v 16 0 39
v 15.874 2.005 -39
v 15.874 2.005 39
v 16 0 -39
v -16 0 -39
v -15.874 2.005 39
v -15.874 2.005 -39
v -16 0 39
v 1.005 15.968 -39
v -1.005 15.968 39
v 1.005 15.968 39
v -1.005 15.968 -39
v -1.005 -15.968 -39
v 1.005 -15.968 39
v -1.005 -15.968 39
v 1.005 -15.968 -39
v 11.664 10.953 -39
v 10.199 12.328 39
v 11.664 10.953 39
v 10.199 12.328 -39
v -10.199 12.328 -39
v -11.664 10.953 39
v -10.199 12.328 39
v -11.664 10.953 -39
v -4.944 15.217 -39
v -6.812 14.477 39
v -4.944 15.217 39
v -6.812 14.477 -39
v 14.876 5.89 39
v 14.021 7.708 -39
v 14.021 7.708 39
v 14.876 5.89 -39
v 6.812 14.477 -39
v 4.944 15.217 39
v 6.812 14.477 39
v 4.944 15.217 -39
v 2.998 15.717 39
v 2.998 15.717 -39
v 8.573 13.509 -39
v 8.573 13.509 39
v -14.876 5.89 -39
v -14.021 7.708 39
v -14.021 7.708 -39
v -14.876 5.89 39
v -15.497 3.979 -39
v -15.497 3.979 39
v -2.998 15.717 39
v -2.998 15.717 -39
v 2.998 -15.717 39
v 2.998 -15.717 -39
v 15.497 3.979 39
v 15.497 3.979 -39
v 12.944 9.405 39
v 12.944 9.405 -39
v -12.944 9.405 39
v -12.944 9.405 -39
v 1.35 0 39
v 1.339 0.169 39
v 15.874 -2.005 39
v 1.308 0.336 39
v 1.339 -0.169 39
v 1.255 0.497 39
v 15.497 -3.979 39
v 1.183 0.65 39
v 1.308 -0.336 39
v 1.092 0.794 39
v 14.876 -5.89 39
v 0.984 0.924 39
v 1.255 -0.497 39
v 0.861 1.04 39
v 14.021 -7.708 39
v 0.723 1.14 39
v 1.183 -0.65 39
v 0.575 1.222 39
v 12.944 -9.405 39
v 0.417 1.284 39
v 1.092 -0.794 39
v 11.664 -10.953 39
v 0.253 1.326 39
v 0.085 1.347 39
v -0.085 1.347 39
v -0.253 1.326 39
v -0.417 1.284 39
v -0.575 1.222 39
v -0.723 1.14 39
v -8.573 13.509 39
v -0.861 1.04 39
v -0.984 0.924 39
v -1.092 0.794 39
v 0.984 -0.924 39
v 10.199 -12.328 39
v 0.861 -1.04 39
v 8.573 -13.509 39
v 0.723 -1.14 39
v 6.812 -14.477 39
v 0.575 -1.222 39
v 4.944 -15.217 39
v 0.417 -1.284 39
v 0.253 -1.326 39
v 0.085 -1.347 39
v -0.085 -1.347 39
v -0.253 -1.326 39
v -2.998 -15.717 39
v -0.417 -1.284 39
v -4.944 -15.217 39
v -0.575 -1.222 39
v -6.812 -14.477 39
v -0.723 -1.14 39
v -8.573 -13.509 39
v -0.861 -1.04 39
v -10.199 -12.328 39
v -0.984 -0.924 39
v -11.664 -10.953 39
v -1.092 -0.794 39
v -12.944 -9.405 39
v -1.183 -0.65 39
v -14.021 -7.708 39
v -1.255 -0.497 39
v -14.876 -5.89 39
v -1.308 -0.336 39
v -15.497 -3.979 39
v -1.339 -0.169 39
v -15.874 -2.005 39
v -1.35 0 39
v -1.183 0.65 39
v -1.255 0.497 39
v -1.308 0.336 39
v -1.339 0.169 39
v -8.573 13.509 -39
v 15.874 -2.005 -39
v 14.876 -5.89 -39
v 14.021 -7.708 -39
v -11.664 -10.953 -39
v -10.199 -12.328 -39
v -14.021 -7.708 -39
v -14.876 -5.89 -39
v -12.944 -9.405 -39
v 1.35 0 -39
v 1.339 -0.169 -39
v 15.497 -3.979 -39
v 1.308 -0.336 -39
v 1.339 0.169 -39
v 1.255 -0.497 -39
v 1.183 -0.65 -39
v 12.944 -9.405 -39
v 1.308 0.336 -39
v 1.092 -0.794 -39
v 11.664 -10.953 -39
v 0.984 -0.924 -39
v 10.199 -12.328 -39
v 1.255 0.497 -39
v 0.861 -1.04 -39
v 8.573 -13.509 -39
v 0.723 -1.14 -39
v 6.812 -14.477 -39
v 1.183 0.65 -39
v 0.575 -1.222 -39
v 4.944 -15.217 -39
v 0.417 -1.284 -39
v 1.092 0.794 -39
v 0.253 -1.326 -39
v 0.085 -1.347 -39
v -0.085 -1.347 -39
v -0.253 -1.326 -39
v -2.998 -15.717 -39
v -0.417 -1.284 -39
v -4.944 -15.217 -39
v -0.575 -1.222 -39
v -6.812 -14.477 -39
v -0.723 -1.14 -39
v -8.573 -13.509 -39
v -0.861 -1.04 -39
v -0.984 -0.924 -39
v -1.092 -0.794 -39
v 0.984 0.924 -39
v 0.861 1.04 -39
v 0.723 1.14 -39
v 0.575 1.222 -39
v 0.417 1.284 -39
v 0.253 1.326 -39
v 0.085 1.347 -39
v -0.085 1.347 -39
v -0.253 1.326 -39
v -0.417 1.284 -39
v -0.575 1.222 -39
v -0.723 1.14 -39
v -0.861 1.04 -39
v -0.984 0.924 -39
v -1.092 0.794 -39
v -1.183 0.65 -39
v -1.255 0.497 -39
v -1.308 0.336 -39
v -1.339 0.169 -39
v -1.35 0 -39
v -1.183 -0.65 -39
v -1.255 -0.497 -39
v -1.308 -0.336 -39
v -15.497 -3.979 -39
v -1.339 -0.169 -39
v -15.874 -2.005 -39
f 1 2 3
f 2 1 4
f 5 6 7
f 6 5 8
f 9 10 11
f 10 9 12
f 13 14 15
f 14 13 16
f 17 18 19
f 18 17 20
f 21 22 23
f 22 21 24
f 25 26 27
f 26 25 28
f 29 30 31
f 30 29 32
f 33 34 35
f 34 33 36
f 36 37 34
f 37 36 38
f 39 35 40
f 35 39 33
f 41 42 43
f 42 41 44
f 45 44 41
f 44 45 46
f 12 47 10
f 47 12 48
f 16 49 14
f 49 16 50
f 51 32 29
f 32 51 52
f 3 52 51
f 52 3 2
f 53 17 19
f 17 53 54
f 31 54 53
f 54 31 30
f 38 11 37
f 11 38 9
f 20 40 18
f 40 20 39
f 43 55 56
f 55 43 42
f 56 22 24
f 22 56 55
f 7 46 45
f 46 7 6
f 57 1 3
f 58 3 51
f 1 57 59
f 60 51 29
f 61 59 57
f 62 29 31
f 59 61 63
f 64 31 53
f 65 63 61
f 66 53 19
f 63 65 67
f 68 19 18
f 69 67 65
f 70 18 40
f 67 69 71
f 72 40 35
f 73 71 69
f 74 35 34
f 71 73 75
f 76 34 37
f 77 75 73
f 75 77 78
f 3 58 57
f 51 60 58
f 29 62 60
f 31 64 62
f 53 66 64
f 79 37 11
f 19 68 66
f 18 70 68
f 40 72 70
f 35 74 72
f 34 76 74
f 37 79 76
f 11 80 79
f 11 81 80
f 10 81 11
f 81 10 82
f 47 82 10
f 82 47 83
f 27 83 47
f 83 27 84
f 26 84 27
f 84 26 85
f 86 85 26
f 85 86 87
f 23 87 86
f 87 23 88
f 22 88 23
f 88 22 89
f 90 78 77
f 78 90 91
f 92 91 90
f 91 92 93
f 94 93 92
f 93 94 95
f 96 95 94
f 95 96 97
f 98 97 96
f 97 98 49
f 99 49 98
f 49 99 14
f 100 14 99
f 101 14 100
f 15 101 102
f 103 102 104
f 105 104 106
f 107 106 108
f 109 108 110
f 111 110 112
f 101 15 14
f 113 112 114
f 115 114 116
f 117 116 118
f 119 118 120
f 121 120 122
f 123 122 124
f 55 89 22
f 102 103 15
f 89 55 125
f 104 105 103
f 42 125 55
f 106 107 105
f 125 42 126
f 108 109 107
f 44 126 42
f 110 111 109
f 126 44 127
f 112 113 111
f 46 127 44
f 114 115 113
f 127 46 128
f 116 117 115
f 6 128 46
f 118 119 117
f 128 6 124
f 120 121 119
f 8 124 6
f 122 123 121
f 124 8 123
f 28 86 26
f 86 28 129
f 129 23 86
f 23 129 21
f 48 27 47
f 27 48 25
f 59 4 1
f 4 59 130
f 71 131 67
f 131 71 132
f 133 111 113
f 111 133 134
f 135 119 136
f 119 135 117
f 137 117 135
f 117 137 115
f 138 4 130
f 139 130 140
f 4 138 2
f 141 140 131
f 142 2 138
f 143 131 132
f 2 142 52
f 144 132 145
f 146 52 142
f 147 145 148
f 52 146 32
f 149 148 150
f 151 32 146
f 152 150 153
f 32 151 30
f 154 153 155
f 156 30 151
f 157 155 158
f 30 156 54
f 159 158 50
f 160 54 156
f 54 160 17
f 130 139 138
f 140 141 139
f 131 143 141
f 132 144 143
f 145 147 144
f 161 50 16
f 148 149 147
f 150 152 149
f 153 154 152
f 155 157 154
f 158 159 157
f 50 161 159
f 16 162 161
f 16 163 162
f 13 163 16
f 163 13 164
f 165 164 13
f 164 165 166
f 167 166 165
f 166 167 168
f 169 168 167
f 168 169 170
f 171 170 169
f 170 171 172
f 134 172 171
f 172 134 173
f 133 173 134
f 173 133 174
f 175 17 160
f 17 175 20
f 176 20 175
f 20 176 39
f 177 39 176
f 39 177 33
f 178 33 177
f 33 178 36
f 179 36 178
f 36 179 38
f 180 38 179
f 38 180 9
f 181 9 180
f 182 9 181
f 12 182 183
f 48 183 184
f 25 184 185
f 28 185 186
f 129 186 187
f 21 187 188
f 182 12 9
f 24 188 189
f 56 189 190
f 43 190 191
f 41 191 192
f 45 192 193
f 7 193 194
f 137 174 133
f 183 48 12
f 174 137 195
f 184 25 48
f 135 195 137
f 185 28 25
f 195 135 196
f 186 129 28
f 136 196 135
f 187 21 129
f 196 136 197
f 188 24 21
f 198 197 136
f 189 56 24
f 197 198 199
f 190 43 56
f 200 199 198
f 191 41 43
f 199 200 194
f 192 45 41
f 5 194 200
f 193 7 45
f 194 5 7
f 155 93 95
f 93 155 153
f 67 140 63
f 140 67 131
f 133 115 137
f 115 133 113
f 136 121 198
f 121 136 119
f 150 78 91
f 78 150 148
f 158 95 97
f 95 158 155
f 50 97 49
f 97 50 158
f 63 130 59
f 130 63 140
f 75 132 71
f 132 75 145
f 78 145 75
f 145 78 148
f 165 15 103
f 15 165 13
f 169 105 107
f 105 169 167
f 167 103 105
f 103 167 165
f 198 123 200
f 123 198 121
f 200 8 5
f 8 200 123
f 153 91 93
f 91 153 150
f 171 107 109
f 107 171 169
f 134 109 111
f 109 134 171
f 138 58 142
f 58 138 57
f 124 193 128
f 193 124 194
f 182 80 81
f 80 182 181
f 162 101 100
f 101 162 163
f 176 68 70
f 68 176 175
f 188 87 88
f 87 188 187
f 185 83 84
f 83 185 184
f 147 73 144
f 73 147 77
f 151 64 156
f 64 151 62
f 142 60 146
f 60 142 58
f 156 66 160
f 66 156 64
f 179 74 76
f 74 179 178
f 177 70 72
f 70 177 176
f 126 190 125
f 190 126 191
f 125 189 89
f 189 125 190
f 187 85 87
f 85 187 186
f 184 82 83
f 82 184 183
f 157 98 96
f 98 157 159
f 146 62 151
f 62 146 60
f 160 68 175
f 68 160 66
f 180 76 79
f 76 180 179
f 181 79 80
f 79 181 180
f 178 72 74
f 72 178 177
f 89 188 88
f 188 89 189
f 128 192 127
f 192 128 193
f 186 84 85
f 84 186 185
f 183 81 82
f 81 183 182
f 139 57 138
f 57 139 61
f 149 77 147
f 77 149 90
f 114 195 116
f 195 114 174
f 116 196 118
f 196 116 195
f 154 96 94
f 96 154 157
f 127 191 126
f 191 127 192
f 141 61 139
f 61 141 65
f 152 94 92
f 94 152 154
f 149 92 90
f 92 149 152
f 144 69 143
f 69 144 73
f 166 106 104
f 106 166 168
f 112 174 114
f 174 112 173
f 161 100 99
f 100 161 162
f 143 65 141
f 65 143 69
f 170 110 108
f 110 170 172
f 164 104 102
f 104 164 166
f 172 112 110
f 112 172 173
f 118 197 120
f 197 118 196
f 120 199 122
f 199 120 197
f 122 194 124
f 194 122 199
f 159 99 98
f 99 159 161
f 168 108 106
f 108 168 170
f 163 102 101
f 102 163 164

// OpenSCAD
$fn = 50;


difference() {
	union() {
		translate(v = [0, 0, -39.0000000000]) {
			cylinder(h = 78, r = 16.0000000000);
		}
	}
	union() {
		translate(v = [0, 0, -100.0000000000]) {
			cylinder(h = 200, r = 1.3500000000);
		}
	}
}
